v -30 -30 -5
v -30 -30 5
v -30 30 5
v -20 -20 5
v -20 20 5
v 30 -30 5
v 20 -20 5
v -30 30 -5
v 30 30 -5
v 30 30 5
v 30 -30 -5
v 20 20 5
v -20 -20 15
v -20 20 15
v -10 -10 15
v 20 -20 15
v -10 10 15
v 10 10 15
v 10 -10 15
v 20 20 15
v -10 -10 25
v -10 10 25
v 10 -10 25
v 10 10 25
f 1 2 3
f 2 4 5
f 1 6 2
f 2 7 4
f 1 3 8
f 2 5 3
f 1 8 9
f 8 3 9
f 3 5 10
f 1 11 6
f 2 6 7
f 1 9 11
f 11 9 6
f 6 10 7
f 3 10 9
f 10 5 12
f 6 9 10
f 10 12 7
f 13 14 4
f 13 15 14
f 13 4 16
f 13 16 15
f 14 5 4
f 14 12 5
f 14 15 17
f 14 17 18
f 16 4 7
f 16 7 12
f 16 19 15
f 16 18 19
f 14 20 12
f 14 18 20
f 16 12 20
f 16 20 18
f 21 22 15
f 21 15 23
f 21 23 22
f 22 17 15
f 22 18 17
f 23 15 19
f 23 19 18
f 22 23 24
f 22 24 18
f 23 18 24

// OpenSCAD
// 3段の階段状ピラミッド

// 1段目: 60mm × 60mm × 高さ10mm
translate([0, 0, 0])
    cube([60, 60, 10], center = true);

// 2段目: 40mm × 40mm × 高さ10mm
translate([0, 0, 10])
    cube([40, 40, 10], center = true);

// 3段目: 20mm × 20mm × 高さ10mm
translate([0, 0, 20])
    cube([20, 20, 10], center = true);
